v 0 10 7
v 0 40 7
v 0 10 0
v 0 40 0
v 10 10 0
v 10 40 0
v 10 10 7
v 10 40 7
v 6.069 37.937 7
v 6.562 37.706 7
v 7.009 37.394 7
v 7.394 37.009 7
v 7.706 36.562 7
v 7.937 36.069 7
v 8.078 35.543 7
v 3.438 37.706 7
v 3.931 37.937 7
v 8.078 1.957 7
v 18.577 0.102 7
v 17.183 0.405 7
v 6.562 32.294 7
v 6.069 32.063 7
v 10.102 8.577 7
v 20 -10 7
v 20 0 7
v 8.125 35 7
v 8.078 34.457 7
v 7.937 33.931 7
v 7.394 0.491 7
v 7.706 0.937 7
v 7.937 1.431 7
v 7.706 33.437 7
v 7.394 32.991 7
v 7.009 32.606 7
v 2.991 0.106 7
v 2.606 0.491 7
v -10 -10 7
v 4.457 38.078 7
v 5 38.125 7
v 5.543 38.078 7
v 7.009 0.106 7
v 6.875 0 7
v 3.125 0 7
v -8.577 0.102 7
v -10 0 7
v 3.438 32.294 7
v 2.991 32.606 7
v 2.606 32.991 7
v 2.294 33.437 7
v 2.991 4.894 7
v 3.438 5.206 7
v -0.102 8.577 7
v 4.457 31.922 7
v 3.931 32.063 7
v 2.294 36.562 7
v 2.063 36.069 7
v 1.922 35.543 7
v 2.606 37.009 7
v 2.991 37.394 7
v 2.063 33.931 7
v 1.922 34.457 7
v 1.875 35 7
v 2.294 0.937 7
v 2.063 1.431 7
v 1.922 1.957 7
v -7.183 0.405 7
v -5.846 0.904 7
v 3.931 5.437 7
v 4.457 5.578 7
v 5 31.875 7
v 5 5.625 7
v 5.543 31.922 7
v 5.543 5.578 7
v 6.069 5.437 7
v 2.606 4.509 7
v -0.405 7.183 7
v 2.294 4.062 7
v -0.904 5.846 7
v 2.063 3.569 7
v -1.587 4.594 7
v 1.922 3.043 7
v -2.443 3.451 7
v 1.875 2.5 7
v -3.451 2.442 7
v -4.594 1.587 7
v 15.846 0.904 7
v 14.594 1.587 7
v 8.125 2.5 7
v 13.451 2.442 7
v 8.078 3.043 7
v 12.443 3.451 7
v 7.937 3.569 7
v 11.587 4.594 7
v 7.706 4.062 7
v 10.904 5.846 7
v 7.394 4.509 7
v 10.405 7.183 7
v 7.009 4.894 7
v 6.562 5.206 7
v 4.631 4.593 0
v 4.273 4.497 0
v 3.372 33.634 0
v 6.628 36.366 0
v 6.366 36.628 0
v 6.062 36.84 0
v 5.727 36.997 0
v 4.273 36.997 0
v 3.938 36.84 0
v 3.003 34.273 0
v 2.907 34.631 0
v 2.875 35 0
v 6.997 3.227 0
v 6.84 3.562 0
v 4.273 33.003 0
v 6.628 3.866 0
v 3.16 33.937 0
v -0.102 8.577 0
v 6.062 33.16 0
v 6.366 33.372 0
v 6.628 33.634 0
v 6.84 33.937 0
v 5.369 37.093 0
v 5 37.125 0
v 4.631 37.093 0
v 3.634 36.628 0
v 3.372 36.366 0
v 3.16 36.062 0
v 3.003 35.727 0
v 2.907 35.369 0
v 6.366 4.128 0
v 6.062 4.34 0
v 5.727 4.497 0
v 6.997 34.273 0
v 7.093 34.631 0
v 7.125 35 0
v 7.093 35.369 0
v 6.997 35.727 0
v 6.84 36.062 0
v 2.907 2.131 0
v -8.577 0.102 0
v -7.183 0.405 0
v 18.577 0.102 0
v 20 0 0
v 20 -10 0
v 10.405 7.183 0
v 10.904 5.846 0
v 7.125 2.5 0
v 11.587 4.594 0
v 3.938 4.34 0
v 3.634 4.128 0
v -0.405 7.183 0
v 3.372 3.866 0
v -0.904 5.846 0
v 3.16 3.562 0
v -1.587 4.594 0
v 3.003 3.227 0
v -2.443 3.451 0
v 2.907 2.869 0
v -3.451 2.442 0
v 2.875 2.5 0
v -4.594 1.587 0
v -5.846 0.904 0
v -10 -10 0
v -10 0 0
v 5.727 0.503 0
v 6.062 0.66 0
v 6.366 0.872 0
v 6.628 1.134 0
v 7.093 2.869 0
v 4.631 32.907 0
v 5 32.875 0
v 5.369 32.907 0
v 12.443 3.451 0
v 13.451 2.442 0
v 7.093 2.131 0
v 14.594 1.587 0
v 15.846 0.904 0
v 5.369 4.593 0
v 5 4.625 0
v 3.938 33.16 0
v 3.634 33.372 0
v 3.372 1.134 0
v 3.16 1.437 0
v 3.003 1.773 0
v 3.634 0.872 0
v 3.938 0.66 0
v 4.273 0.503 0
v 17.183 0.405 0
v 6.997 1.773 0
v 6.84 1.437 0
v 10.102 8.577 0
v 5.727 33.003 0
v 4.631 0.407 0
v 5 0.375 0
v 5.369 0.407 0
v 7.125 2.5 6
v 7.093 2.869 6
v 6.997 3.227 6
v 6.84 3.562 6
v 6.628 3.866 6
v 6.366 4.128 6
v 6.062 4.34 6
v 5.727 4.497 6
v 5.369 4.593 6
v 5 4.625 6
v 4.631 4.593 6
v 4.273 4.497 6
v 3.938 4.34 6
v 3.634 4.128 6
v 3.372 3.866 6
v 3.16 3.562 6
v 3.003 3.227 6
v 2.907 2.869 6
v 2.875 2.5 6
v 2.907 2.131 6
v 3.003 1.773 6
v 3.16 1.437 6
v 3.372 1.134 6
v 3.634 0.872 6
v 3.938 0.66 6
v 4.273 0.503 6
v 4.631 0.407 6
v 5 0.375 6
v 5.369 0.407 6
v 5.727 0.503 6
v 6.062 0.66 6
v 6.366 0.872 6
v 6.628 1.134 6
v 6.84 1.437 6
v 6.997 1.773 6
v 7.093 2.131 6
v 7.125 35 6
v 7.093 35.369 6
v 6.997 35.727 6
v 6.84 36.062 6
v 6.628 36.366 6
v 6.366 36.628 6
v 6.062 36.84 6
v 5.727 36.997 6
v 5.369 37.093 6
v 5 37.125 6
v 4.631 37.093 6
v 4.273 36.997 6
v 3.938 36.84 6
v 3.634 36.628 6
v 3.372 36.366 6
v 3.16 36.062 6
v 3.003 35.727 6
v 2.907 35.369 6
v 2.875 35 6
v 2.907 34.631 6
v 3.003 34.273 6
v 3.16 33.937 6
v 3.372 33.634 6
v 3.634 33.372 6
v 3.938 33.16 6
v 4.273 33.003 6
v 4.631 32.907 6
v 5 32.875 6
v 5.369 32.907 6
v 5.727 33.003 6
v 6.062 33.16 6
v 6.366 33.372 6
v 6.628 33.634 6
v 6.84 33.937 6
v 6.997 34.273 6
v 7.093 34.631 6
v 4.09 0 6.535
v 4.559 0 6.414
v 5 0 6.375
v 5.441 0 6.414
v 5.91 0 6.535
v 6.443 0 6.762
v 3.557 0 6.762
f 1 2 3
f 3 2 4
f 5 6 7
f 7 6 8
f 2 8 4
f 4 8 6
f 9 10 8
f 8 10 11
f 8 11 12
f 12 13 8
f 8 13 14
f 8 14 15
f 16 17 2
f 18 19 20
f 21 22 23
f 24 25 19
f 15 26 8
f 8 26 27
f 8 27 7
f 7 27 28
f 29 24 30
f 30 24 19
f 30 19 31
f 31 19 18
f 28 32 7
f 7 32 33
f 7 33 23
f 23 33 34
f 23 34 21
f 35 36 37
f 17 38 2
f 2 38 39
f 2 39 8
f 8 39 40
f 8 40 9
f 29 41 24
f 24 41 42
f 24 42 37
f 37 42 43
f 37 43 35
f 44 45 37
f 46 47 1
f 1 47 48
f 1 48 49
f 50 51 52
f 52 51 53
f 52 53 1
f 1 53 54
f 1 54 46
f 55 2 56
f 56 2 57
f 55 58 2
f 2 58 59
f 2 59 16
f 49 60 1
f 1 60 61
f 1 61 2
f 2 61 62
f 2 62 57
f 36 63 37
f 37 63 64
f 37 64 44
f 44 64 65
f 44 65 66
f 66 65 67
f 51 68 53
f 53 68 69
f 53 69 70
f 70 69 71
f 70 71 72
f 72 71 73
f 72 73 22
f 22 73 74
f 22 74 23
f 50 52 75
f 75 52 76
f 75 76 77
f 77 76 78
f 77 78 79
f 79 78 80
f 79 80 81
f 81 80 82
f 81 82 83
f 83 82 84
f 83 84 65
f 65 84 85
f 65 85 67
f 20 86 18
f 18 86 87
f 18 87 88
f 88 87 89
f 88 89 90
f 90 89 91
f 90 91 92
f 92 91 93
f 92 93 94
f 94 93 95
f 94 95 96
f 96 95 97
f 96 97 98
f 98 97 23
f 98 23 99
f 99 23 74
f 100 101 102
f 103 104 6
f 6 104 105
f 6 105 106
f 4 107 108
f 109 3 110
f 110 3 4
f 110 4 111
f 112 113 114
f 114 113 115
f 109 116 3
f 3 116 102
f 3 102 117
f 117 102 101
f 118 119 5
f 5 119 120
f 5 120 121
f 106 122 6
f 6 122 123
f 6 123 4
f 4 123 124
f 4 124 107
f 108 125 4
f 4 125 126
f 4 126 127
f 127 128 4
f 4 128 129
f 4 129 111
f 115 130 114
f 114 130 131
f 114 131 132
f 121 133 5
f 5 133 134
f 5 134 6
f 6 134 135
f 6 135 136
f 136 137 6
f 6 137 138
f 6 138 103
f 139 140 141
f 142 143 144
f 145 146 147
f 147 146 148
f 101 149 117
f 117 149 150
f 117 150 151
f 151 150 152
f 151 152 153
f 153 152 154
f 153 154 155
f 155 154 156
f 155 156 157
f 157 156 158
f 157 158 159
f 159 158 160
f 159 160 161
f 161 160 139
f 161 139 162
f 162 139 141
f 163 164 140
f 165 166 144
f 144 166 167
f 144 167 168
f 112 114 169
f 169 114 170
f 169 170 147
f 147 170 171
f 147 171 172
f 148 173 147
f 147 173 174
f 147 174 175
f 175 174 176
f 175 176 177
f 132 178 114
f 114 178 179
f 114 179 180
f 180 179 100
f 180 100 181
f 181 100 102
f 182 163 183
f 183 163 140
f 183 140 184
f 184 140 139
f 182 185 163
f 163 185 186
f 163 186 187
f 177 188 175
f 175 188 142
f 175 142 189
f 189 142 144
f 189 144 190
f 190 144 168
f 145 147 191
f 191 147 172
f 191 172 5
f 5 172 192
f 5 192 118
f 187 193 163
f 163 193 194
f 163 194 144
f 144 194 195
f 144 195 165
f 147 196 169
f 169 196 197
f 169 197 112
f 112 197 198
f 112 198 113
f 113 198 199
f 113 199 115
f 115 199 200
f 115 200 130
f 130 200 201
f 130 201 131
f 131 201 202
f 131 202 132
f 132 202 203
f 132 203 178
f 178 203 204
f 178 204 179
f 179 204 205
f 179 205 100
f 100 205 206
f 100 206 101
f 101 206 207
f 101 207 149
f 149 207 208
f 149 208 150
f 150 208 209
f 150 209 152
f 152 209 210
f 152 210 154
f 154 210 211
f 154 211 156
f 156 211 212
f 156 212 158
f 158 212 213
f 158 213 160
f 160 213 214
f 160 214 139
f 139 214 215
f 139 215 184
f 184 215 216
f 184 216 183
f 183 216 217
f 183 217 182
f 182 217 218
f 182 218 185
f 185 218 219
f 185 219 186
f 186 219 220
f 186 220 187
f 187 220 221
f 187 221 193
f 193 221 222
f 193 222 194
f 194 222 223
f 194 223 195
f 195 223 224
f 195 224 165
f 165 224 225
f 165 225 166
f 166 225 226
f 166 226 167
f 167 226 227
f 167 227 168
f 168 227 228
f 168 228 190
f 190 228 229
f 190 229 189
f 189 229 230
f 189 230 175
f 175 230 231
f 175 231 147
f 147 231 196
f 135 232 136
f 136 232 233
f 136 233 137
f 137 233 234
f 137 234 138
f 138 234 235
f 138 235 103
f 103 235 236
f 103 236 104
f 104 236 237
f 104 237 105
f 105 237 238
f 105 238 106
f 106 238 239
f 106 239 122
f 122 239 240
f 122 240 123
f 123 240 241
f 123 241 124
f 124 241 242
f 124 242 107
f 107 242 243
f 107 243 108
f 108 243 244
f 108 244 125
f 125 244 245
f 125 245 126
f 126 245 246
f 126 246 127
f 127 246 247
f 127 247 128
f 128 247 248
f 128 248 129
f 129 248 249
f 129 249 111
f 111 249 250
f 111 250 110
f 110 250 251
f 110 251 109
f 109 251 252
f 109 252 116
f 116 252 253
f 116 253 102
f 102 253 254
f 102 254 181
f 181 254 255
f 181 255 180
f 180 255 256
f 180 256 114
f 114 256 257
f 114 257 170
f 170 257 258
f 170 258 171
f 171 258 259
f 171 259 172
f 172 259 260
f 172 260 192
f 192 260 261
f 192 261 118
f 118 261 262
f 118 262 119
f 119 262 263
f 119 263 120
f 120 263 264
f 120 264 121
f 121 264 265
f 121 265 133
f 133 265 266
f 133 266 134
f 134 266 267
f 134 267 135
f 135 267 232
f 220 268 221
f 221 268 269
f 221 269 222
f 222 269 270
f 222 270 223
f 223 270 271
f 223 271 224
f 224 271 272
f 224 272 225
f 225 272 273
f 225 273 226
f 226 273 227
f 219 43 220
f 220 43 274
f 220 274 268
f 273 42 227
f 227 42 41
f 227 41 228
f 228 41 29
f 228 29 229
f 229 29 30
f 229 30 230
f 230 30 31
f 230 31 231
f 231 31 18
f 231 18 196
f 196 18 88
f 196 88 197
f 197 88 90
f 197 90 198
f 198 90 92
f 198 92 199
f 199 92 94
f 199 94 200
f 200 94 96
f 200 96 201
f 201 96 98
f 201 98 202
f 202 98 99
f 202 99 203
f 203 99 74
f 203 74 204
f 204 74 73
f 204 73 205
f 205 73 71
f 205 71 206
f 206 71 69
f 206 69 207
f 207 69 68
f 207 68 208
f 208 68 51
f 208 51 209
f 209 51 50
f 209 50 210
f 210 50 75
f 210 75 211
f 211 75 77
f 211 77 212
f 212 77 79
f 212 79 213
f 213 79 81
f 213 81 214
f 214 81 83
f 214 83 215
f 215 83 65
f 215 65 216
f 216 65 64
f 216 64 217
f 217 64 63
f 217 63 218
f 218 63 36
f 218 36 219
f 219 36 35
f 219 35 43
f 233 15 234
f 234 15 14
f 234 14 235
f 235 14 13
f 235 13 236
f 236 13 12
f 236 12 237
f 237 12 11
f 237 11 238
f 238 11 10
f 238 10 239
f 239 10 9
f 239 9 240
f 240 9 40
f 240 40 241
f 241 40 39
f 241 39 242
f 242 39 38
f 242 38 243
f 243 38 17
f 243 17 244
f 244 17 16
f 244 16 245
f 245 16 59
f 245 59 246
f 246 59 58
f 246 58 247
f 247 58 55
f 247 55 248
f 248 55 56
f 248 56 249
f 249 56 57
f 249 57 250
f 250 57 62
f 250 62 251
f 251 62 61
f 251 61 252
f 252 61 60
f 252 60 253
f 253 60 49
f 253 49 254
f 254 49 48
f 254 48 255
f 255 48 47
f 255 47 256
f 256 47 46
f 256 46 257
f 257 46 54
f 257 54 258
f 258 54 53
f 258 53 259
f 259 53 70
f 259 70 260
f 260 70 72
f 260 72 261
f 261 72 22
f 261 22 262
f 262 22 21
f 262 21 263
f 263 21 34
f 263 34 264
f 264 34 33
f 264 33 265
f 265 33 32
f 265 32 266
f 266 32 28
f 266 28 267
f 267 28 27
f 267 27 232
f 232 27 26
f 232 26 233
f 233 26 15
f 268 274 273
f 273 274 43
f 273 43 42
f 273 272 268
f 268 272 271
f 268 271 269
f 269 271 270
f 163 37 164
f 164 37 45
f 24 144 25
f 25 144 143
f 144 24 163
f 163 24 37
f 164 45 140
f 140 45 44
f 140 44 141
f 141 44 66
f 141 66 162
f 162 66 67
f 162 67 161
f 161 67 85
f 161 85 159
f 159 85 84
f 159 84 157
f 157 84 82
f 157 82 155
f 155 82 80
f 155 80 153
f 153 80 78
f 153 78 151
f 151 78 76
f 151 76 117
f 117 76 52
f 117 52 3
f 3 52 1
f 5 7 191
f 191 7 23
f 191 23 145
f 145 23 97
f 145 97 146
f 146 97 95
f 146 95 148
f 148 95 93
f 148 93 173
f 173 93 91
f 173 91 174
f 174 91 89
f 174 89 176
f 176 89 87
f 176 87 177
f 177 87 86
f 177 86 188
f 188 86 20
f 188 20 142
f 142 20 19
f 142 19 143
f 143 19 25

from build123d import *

# Parameters (mm, degrees)
SKETCH1_W           = 10
SKETCH1_H           = 40
BOSS_EXTRUDE1_DEPTH = 7
SKETCH2_R           = 2.125
CUT_EXTRUDE1_DEPTH  = 7
CHAMFER1_SIZE       = 1
SKETCH3_W           = 30
SKETCH3_H           = 7
BOSS_EXTRUDE2_DEPTH = 10
FILLET1_R           = 10


# Some blends are built 0.0001 mm under size
with BuildPart() as part:
    # Sketch1 → Boss-Extrude1 (new body)
    with BuildSketch(Plane.XY):
        with Locations((5, 20)):
            Rectangle(SKETCH1_W, SKETCH1_H)
    extrude(amount=BOSS_EXTRUDE1_DEPTH)

    # Sketch2 → Cut-Extrude1 (cut)
    with BuildSketch(Plane.XY.offset(7)):
        with Locations((5, 35)):
            Circle(SKETCH2_R)
        with Locations((5, 2.5)):
            Circle(SKETCH2_R)
    extrude(amount=-CUT_EXTRUDE1_DEPTH, mode=Mode.SUBTRACT)

    # Chamfer1
    # the kernel refuses this chamfer: 1 mm, written as the material it takes off along each edge
    with BuildSketch(Plane(origin=(5, 35, 7), x_dir=(1, 0, 0), z_dir=(0, -1, 0))) as chamfer1_piece_1:
        Polygon((2.125 + CHAMFER1_SIZE, 0), (2.125, -CHAMFER1_SIZE), (2.125, 0), align=None)
    revolve(axis=Axis((5, 35, 7), (0, 0, 1)), mode=Mode.SUBTRACT)
    with BuildSketch(Plane(origin=(5, 2.5, 7), x_dir=(1, 0, 0), z_dir=(0, -1, 0))) as chamfer1_piece_2:
        Polygon((2.125 + CHAMFER1_SIZE, 0), (2.125, -CHAMFER1_SIZE), (2.125, 0), align=None)
    revolve(axis=Axis((5, 2.5, 7), (0, 0, 1)), mode=Mode.SUBTRACT)

    # Sketch3 → Boss-Extrude2 (add)
    with BuildSketch(Plane.XZ):
        with Locations((5, 3.5)):
            Rectangle(SKETCH3_W, SKETCH3_H)
    extrude(amount=BOSS_EXTRUDE2_DEPTH)

    # Fillet1
    fillet1_edges = [part.edges().sort_by_distance(p)[0] for p in [
        (0, 0, 3.5),
        (10, 0, 3.5),
    ]]
    fillet(fillet1_edges, radius=FILLET1_R - 0.0001)  # a hair under: the kernel refuses the full size


solid = part.part
